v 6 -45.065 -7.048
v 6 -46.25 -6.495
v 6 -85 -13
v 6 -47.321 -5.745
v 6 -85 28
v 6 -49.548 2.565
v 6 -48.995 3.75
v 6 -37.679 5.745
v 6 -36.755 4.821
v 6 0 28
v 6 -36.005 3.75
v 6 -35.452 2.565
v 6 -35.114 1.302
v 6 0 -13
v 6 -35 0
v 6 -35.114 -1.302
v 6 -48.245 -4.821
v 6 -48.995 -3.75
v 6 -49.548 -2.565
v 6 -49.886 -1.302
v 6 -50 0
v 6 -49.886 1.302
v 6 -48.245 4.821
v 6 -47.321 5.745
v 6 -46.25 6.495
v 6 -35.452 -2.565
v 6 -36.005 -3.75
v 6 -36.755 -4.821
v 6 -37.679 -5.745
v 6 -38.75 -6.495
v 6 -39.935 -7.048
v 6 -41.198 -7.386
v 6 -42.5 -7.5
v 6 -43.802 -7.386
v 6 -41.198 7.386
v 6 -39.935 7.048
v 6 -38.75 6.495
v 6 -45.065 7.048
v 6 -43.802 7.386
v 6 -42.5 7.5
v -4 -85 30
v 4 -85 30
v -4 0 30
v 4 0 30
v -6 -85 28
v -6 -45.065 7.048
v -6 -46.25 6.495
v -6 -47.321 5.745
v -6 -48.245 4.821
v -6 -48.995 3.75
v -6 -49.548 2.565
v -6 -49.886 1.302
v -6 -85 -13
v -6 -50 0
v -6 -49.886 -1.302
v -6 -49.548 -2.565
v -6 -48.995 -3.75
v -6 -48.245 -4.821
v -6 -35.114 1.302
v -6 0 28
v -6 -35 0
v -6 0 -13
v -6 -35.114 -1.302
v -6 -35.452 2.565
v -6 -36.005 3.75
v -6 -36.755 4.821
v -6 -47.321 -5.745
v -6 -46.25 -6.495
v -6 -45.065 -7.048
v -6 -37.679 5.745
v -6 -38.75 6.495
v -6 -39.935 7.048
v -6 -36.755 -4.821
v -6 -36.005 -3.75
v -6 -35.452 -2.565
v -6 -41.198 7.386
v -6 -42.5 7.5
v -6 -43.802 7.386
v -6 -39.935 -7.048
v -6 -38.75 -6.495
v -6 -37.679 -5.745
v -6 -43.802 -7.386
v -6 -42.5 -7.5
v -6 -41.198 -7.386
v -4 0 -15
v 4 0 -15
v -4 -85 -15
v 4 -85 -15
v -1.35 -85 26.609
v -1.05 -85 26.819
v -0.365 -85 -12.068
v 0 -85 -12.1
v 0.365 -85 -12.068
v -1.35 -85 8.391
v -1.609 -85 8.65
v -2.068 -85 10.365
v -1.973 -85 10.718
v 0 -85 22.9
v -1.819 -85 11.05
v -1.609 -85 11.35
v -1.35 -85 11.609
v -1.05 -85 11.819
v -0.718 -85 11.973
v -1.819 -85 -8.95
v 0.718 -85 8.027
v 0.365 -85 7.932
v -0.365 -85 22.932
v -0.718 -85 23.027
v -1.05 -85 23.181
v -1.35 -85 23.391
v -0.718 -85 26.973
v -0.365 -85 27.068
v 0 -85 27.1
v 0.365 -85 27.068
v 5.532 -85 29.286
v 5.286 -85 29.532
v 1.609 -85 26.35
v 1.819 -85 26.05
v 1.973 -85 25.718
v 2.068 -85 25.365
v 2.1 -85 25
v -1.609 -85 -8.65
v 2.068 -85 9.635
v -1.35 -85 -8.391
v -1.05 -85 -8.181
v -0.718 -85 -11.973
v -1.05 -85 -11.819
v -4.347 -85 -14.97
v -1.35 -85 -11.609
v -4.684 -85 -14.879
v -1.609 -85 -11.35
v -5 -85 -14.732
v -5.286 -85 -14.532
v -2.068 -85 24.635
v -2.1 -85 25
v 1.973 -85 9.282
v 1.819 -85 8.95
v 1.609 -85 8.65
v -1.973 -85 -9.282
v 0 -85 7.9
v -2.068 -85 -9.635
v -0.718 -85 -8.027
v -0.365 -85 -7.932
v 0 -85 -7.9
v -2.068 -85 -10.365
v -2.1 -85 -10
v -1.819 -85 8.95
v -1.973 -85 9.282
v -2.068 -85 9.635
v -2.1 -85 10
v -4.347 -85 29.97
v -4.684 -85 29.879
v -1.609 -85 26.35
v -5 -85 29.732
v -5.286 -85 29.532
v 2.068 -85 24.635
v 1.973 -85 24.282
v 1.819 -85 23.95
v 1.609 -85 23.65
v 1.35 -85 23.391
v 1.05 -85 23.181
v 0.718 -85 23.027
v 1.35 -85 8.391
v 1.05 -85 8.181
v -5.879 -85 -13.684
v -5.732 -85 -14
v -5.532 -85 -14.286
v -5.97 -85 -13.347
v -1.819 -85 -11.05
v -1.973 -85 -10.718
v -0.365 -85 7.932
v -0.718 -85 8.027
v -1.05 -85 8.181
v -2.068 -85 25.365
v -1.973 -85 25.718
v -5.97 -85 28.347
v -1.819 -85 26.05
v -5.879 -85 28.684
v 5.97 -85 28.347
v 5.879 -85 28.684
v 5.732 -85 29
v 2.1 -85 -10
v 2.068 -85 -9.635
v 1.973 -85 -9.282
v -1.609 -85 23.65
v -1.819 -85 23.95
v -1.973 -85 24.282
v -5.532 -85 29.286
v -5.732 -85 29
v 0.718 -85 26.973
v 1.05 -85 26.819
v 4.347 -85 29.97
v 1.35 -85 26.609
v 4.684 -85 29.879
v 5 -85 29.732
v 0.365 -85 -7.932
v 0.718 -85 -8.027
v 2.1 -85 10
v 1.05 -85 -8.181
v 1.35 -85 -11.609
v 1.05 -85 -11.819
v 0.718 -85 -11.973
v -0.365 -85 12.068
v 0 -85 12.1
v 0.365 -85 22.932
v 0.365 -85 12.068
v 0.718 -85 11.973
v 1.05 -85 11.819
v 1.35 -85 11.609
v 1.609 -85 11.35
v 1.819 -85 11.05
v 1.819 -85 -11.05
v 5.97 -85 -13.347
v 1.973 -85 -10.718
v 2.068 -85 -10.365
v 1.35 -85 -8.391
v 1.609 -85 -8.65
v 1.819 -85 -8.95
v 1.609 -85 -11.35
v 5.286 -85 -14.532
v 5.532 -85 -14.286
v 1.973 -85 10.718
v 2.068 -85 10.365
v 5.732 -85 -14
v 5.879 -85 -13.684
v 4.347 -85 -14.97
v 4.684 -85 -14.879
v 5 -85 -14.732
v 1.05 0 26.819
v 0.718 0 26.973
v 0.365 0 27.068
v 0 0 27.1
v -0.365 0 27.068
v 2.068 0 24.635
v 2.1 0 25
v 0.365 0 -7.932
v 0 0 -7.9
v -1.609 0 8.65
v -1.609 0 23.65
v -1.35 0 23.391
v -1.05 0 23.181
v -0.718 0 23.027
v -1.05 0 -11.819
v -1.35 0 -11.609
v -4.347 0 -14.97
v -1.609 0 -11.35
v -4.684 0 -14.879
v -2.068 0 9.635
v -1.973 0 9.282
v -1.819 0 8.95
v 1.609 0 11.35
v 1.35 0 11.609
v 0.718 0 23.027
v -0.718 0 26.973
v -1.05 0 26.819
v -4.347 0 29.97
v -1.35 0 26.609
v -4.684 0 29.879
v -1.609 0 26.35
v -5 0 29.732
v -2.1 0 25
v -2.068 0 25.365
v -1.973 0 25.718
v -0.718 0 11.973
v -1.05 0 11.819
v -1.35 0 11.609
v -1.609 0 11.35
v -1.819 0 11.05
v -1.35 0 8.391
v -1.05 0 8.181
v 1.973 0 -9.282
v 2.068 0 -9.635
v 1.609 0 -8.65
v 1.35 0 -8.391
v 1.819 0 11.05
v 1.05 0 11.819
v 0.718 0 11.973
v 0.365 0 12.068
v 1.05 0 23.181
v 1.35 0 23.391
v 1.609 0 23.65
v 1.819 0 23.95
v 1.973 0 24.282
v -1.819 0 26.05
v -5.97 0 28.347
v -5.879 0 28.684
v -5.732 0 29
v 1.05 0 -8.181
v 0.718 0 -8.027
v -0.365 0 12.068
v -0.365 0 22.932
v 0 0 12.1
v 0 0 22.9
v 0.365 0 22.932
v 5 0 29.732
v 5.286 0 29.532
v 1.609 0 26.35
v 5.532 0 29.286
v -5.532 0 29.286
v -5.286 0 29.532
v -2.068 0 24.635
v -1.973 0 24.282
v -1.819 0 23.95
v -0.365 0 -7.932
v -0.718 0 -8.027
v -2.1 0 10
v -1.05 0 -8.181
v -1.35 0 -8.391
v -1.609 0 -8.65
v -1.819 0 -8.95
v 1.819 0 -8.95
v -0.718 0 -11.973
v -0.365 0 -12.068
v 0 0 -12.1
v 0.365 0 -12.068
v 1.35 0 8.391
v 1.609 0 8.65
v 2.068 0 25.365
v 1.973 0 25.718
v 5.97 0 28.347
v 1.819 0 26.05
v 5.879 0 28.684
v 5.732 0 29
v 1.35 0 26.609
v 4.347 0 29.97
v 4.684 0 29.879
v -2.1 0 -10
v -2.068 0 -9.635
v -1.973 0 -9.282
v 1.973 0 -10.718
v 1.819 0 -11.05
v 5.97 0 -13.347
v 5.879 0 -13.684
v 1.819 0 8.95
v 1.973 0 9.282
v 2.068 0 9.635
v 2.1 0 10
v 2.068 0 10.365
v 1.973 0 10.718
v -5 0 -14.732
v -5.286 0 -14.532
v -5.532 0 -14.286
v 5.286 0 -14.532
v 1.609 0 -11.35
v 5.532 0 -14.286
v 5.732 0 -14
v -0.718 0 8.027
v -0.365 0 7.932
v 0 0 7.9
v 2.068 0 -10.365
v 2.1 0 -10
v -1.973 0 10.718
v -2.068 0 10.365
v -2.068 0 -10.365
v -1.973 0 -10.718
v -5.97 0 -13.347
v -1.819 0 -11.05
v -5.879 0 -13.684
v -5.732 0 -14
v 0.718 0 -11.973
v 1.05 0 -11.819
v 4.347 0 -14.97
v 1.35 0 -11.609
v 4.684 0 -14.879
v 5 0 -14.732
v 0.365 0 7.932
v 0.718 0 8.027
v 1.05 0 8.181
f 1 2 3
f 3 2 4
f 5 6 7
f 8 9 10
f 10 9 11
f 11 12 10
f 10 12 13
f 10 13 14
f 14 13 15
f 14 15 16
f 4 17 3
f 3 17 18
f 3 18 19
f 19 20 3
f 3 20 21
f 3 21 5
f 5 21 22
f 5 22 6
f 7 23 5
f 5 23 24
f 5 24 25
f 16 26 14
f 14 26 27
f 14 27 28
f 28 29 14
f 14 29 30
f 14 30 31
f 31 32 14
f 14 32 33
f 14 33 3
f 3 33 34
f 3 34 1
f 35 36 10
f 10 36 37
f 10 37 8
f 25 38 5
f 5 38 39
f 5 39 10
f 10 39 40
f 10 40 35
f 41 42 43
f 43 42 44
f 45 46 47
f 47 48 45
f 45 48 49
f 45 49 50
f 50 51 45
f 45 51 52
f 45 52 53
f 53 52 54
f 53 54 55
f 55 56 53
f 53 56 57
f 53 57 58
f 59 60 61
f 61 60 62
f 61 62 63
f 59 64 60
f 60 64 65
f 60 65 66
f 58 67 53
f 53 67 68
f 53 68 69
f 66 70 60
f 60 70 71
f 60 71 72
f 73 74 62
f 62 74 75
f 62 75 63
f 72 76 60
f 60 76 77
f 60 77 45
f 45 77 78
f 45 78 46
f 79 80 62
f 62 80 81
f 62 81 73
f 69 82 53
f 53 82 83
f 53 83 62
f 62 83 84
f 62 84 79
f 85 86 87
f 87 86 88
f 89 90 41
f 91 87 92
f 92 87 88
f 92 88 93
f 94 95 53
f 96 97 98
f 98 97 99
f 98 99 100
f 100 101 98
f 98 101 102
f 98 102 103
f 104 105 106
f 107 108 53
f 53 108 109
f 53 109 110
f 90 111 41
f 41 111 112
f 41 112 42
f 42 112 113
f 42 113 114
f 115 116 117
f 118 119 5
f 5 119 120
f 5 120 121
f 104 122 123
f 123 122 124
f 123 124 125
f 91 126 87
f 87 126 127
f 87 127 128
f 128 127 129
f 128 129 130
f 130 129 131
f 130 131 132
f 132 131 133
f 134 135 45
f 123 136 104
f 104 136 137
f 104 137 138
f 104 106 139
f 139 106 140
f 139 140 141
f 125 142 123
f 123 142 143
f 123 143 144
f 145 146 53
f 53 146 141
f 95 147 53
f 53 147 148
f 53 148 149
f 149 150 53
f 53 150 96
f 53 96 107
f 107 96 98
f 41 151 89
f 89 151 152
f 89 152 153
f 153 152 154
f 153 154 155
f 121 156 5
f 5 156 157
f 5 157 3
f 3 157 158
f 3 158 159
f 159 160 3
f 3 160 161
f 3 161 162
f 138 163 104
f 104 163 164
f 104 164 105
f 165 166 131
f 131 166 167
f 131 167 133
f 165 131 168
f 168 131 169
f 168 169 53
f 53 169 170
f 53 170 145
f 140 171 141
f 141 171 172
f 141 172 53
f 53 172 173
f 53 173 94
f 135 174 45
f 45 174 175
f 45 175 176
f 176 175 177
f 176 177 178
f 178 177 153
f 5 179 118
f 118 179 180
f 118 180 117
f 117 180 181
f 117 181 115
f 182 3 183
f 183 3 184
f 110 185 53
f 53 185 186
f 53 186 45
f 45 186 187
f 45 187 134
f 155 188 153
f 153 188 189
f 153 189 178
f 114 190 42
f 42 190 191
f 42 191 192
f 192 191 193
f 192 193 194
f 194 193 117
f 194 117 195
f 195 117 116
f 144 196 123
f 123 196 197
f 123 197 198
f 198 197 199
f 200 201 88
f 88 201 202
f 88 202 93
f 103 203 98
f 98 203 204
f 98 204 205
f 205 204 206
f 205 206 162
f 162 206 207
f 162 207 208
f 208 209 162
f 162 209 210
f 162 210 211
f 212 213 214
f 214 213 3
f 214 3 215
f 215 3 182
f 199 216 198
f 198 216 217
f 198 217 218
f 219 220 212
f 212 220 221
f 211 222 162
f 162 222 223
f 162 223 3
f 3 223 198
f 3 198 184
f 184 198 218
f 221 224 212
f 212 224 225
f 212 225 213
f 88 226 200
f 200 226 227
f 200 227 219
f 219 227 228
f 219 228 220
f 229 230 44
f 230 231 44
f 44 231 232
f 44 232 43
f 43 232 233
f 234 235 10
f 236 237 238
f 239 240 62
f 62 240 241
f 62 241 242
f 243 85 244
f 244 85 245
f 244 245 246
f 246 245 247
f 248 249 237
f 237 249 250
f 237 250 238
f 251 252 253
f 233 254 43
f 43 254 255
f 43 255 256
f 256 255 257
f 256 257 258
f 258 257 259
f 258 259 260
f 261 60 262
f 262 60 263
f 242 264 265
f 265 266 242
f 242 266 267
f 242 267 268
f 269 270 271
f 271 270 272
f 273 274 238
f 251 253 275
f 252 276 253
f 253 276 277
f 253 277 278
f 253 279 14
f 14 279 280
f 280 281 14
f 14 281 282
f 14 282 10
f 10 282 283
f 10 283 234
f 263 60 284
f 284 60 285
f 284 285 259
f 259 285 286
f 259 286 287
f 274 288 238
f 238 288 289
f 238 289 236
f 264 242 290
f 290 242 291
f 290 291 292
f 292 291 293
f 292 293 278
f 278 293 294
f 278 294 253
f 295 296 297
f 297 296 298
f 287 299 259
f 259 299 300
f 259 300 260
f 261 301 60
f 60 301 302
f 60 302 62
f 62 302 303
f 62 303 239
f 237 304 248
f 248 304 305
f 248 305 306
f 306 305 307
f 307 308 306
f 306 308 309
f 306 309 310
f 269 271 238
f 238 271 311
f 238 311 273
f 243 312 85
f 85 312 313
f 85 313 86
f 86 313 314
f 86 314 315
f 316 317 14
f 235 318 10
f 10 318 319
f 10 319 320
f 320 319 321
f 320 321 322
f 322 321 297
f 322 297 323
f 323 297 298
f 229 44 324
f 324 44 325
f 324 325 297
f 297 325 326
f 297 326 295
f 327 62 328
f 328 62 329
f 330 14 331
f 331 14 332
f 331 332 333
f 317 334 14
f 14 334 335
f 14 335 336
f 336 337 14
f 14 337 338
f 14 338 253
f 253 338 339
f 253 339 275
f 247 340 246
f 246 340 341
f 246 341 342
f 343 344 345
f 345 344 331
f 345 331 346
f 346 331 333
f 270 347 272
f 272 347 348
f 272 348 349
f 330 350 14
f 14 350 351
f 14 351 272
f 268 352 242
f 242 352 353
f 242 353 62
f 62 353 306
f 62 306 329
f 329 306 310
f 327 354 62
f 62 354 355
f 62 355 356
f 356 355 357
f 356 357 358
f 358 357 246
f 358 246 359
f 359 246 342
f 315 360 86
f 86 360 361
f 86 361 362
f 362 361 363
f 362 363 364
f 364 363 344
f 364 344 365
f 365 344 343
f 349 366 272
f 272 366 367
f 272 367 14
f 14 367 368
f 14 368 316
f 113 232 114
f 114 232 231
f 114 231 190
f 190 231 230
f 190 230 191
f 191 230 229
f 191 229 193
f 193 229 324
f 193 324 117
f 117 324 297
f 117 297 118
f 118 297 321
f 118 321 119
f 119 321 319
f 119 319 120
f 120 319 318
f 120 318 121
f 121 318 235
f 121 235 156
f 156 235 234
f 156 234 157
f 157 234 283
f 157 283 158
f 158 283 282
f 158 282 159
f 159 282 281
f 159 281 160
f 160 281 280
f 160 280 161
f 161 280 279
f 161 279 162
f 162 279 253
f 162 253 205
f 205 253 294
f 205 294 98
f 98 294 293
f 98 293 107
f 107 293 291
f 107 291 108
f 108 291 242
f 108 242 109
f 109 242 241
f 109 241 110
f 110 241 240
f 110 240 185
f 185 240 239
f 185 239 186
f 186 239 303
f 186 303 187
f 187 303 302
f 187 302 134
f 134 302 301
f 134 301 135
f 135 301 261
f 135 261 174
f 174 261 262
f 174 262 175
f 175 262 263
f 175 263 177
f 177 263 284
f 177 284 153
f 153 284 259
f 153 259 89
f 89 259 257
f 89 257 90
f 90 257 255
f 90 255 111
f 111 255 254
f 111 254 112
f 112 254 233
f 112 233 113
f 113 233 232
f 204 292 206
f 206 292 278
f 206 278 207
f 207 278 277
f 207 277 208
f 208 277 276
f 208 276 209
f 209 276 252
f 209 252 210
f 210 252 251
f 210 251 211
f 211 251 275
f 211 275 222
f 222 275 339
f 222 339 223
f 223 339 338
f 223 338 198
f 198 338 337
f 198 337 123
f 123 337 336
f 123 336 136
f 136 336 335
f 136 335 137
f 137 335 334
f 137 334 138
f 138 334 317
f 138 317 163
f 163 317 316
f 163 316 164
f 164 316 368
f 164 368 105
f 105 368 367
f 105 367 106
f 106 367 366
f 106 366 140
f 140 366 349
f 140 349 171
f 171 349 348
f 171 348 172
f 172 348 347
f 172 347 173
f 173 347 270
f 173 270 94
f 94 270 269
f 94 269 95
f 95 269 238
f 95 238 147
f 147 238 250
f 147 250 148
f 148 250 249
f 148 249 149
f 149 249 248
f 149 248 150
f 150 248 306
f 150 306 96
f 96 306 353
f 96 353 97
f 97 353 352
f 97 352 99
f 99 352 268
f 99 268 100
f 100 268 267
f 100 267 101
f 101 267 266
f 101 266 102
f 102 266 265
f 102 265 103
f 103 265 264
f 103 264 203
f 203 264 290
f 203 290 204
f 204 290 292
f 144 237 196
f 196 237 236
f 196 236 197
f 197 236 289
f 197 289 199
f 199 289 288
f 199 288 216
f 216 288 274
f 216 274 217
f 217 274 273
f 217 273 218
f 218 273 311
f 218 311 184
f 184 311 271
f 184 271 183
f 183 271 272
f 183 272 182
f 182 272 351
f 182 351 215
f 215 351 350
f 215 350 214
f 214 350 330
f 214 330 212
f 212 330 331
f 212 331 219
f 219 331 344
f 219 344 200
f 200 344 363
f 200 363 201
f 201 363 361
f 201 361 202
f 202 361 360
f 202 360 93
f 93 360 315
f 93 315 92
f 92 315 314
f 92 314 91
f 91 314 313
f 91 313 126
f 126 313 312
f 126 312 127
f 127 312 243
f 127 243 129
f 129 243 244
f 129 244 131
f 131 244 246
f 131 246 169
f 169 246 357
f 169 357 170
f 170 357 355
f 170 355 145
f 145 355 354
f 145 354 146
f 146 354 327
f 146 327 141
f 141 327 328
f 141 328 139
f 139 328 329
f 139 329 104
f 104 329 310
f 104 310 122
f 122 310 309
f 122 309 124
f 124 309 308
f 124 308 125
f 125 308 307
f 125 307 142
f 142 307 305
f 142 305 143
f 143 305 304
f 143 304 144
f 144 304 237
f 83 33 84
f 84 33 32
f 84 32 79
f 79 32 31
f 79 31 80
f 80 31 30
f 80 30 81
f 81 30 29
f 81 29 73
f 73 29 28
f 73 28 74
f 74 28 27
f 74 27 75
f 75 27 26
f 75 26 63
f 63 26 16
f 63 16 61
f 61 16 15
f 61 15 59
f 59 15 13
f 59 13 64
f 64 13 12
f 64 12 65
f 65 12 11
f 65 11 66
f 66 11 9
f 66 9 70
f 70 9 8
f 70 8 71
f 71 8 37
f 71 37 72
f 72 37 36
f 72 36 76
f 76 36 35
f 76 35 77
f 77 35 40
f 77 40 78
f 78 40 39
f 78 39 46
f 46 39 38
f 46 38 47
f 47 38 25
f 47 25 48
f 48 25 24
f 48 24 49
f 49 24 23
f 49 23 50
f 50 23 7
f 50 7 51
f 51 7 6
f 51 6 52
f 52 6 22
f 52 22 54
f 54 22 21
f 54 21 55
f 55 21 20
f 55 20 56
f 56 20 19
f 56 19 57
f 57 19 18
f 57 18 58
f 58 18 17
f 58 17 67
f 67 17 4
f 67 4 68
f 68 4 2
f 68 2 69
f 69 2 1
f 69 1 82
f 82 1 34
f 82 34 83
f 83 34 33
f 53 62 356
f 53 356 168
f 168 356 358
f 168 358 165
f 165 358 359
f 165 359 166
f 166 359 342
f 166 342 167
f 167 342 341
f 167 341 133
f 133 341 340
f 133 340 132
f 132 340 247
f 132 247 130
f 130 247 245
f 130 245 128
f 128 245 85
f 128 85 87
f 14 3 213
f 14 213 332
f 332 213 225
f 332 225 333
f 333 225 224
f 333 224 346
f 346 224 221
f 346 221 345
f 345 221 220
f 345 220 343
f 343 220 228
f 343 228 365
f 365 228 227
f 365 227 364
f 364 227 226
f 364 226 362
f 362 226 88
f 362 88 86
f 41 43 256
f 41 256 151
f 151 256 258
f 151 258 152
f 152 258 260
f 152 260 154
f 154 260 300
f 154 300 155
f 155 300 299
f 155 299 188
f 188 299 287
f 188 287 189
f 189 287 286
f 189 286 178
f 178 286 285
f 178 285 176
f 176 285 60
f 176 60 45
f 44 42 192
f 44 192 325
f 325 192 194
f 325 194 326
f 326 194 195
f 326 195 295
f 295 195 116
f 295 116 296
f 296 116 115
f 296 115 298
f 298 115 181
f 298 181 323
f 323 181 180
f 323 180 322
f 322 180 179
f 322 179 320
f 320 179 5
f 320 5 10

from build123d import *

# Parameters (mm, degrees)
SKETCH1_W                   = 12
SKETCH1_H                   = 45
BOSS_EXTRUDE1_DEPTH         = 85
TAP_DRILL_FOR_M5X0_8_TAP1_D = 4.2
CUT_EXTRUDE1_REACH          = 92.934
SKETCH3_R                   = 7.5
FILLET1_R                   = 2


with BuildPart() as part:
    # Sketch1 → Boss-Extrude1 (new body)
    with BuildSketch(Plane(origin=(0, 0, 0), x_dir=(1, 0, 0), z_dir=(0, 1, 0))):
        with Locations((0, -7.5)):
            Rectangle(SKETCH1_W, SKETCH1_H)
    extrude(amount=-BOSS_EXTRUDE1_DEPTH)

    # Tap Drill for M5x0.8 Tap1 (through all)
    with Locations(Plane(origin=(0, 0, -10), x_dir=(0, 0, 1), z_dir=(0, 1, 0))):
        with Locations((0, 0), (20, 0), (35, 0)):
            Hole(TAP_DRILL_FOR_M5X0_8_TAP1_D / 2)

    # Sketch3 → Cut-Extrude1 (cut, up to next)
    with BuildSketch(Plane(origin=(6, 0, 0), x_dir=(0, 0, -1), z_dir=(1, 0, 0)), mode=Mode.PRIVATE) as cut_extrude1_sk1:
        with Locations((0, -42.5)):
            Circle(SKETCH3_R)
    cut_extrude1_tool1 = extrude(cut_extrude1_sk1.sketch, amount=-CUT_EXTRUDE1_REACH, mode=Mode.PRIVATE) & part.part
    add(cut_extrude1_tool1.solids().sort_by_distance((6, -42.5, 0))[0], mode=Mode.SUBTRACT)

    # Fillet1
    fillet1_edges = [part.edges().sort_by_distance(p)[0] for p in [
        (6, -42.5, 30),
        (-6, -42.5, 30),
        (-6, -42.5, -15),
        (6, -42.5, -15),
    ]]
    fillet(fillet1_edges, radius=FILLET1_R)


solid = part.part
